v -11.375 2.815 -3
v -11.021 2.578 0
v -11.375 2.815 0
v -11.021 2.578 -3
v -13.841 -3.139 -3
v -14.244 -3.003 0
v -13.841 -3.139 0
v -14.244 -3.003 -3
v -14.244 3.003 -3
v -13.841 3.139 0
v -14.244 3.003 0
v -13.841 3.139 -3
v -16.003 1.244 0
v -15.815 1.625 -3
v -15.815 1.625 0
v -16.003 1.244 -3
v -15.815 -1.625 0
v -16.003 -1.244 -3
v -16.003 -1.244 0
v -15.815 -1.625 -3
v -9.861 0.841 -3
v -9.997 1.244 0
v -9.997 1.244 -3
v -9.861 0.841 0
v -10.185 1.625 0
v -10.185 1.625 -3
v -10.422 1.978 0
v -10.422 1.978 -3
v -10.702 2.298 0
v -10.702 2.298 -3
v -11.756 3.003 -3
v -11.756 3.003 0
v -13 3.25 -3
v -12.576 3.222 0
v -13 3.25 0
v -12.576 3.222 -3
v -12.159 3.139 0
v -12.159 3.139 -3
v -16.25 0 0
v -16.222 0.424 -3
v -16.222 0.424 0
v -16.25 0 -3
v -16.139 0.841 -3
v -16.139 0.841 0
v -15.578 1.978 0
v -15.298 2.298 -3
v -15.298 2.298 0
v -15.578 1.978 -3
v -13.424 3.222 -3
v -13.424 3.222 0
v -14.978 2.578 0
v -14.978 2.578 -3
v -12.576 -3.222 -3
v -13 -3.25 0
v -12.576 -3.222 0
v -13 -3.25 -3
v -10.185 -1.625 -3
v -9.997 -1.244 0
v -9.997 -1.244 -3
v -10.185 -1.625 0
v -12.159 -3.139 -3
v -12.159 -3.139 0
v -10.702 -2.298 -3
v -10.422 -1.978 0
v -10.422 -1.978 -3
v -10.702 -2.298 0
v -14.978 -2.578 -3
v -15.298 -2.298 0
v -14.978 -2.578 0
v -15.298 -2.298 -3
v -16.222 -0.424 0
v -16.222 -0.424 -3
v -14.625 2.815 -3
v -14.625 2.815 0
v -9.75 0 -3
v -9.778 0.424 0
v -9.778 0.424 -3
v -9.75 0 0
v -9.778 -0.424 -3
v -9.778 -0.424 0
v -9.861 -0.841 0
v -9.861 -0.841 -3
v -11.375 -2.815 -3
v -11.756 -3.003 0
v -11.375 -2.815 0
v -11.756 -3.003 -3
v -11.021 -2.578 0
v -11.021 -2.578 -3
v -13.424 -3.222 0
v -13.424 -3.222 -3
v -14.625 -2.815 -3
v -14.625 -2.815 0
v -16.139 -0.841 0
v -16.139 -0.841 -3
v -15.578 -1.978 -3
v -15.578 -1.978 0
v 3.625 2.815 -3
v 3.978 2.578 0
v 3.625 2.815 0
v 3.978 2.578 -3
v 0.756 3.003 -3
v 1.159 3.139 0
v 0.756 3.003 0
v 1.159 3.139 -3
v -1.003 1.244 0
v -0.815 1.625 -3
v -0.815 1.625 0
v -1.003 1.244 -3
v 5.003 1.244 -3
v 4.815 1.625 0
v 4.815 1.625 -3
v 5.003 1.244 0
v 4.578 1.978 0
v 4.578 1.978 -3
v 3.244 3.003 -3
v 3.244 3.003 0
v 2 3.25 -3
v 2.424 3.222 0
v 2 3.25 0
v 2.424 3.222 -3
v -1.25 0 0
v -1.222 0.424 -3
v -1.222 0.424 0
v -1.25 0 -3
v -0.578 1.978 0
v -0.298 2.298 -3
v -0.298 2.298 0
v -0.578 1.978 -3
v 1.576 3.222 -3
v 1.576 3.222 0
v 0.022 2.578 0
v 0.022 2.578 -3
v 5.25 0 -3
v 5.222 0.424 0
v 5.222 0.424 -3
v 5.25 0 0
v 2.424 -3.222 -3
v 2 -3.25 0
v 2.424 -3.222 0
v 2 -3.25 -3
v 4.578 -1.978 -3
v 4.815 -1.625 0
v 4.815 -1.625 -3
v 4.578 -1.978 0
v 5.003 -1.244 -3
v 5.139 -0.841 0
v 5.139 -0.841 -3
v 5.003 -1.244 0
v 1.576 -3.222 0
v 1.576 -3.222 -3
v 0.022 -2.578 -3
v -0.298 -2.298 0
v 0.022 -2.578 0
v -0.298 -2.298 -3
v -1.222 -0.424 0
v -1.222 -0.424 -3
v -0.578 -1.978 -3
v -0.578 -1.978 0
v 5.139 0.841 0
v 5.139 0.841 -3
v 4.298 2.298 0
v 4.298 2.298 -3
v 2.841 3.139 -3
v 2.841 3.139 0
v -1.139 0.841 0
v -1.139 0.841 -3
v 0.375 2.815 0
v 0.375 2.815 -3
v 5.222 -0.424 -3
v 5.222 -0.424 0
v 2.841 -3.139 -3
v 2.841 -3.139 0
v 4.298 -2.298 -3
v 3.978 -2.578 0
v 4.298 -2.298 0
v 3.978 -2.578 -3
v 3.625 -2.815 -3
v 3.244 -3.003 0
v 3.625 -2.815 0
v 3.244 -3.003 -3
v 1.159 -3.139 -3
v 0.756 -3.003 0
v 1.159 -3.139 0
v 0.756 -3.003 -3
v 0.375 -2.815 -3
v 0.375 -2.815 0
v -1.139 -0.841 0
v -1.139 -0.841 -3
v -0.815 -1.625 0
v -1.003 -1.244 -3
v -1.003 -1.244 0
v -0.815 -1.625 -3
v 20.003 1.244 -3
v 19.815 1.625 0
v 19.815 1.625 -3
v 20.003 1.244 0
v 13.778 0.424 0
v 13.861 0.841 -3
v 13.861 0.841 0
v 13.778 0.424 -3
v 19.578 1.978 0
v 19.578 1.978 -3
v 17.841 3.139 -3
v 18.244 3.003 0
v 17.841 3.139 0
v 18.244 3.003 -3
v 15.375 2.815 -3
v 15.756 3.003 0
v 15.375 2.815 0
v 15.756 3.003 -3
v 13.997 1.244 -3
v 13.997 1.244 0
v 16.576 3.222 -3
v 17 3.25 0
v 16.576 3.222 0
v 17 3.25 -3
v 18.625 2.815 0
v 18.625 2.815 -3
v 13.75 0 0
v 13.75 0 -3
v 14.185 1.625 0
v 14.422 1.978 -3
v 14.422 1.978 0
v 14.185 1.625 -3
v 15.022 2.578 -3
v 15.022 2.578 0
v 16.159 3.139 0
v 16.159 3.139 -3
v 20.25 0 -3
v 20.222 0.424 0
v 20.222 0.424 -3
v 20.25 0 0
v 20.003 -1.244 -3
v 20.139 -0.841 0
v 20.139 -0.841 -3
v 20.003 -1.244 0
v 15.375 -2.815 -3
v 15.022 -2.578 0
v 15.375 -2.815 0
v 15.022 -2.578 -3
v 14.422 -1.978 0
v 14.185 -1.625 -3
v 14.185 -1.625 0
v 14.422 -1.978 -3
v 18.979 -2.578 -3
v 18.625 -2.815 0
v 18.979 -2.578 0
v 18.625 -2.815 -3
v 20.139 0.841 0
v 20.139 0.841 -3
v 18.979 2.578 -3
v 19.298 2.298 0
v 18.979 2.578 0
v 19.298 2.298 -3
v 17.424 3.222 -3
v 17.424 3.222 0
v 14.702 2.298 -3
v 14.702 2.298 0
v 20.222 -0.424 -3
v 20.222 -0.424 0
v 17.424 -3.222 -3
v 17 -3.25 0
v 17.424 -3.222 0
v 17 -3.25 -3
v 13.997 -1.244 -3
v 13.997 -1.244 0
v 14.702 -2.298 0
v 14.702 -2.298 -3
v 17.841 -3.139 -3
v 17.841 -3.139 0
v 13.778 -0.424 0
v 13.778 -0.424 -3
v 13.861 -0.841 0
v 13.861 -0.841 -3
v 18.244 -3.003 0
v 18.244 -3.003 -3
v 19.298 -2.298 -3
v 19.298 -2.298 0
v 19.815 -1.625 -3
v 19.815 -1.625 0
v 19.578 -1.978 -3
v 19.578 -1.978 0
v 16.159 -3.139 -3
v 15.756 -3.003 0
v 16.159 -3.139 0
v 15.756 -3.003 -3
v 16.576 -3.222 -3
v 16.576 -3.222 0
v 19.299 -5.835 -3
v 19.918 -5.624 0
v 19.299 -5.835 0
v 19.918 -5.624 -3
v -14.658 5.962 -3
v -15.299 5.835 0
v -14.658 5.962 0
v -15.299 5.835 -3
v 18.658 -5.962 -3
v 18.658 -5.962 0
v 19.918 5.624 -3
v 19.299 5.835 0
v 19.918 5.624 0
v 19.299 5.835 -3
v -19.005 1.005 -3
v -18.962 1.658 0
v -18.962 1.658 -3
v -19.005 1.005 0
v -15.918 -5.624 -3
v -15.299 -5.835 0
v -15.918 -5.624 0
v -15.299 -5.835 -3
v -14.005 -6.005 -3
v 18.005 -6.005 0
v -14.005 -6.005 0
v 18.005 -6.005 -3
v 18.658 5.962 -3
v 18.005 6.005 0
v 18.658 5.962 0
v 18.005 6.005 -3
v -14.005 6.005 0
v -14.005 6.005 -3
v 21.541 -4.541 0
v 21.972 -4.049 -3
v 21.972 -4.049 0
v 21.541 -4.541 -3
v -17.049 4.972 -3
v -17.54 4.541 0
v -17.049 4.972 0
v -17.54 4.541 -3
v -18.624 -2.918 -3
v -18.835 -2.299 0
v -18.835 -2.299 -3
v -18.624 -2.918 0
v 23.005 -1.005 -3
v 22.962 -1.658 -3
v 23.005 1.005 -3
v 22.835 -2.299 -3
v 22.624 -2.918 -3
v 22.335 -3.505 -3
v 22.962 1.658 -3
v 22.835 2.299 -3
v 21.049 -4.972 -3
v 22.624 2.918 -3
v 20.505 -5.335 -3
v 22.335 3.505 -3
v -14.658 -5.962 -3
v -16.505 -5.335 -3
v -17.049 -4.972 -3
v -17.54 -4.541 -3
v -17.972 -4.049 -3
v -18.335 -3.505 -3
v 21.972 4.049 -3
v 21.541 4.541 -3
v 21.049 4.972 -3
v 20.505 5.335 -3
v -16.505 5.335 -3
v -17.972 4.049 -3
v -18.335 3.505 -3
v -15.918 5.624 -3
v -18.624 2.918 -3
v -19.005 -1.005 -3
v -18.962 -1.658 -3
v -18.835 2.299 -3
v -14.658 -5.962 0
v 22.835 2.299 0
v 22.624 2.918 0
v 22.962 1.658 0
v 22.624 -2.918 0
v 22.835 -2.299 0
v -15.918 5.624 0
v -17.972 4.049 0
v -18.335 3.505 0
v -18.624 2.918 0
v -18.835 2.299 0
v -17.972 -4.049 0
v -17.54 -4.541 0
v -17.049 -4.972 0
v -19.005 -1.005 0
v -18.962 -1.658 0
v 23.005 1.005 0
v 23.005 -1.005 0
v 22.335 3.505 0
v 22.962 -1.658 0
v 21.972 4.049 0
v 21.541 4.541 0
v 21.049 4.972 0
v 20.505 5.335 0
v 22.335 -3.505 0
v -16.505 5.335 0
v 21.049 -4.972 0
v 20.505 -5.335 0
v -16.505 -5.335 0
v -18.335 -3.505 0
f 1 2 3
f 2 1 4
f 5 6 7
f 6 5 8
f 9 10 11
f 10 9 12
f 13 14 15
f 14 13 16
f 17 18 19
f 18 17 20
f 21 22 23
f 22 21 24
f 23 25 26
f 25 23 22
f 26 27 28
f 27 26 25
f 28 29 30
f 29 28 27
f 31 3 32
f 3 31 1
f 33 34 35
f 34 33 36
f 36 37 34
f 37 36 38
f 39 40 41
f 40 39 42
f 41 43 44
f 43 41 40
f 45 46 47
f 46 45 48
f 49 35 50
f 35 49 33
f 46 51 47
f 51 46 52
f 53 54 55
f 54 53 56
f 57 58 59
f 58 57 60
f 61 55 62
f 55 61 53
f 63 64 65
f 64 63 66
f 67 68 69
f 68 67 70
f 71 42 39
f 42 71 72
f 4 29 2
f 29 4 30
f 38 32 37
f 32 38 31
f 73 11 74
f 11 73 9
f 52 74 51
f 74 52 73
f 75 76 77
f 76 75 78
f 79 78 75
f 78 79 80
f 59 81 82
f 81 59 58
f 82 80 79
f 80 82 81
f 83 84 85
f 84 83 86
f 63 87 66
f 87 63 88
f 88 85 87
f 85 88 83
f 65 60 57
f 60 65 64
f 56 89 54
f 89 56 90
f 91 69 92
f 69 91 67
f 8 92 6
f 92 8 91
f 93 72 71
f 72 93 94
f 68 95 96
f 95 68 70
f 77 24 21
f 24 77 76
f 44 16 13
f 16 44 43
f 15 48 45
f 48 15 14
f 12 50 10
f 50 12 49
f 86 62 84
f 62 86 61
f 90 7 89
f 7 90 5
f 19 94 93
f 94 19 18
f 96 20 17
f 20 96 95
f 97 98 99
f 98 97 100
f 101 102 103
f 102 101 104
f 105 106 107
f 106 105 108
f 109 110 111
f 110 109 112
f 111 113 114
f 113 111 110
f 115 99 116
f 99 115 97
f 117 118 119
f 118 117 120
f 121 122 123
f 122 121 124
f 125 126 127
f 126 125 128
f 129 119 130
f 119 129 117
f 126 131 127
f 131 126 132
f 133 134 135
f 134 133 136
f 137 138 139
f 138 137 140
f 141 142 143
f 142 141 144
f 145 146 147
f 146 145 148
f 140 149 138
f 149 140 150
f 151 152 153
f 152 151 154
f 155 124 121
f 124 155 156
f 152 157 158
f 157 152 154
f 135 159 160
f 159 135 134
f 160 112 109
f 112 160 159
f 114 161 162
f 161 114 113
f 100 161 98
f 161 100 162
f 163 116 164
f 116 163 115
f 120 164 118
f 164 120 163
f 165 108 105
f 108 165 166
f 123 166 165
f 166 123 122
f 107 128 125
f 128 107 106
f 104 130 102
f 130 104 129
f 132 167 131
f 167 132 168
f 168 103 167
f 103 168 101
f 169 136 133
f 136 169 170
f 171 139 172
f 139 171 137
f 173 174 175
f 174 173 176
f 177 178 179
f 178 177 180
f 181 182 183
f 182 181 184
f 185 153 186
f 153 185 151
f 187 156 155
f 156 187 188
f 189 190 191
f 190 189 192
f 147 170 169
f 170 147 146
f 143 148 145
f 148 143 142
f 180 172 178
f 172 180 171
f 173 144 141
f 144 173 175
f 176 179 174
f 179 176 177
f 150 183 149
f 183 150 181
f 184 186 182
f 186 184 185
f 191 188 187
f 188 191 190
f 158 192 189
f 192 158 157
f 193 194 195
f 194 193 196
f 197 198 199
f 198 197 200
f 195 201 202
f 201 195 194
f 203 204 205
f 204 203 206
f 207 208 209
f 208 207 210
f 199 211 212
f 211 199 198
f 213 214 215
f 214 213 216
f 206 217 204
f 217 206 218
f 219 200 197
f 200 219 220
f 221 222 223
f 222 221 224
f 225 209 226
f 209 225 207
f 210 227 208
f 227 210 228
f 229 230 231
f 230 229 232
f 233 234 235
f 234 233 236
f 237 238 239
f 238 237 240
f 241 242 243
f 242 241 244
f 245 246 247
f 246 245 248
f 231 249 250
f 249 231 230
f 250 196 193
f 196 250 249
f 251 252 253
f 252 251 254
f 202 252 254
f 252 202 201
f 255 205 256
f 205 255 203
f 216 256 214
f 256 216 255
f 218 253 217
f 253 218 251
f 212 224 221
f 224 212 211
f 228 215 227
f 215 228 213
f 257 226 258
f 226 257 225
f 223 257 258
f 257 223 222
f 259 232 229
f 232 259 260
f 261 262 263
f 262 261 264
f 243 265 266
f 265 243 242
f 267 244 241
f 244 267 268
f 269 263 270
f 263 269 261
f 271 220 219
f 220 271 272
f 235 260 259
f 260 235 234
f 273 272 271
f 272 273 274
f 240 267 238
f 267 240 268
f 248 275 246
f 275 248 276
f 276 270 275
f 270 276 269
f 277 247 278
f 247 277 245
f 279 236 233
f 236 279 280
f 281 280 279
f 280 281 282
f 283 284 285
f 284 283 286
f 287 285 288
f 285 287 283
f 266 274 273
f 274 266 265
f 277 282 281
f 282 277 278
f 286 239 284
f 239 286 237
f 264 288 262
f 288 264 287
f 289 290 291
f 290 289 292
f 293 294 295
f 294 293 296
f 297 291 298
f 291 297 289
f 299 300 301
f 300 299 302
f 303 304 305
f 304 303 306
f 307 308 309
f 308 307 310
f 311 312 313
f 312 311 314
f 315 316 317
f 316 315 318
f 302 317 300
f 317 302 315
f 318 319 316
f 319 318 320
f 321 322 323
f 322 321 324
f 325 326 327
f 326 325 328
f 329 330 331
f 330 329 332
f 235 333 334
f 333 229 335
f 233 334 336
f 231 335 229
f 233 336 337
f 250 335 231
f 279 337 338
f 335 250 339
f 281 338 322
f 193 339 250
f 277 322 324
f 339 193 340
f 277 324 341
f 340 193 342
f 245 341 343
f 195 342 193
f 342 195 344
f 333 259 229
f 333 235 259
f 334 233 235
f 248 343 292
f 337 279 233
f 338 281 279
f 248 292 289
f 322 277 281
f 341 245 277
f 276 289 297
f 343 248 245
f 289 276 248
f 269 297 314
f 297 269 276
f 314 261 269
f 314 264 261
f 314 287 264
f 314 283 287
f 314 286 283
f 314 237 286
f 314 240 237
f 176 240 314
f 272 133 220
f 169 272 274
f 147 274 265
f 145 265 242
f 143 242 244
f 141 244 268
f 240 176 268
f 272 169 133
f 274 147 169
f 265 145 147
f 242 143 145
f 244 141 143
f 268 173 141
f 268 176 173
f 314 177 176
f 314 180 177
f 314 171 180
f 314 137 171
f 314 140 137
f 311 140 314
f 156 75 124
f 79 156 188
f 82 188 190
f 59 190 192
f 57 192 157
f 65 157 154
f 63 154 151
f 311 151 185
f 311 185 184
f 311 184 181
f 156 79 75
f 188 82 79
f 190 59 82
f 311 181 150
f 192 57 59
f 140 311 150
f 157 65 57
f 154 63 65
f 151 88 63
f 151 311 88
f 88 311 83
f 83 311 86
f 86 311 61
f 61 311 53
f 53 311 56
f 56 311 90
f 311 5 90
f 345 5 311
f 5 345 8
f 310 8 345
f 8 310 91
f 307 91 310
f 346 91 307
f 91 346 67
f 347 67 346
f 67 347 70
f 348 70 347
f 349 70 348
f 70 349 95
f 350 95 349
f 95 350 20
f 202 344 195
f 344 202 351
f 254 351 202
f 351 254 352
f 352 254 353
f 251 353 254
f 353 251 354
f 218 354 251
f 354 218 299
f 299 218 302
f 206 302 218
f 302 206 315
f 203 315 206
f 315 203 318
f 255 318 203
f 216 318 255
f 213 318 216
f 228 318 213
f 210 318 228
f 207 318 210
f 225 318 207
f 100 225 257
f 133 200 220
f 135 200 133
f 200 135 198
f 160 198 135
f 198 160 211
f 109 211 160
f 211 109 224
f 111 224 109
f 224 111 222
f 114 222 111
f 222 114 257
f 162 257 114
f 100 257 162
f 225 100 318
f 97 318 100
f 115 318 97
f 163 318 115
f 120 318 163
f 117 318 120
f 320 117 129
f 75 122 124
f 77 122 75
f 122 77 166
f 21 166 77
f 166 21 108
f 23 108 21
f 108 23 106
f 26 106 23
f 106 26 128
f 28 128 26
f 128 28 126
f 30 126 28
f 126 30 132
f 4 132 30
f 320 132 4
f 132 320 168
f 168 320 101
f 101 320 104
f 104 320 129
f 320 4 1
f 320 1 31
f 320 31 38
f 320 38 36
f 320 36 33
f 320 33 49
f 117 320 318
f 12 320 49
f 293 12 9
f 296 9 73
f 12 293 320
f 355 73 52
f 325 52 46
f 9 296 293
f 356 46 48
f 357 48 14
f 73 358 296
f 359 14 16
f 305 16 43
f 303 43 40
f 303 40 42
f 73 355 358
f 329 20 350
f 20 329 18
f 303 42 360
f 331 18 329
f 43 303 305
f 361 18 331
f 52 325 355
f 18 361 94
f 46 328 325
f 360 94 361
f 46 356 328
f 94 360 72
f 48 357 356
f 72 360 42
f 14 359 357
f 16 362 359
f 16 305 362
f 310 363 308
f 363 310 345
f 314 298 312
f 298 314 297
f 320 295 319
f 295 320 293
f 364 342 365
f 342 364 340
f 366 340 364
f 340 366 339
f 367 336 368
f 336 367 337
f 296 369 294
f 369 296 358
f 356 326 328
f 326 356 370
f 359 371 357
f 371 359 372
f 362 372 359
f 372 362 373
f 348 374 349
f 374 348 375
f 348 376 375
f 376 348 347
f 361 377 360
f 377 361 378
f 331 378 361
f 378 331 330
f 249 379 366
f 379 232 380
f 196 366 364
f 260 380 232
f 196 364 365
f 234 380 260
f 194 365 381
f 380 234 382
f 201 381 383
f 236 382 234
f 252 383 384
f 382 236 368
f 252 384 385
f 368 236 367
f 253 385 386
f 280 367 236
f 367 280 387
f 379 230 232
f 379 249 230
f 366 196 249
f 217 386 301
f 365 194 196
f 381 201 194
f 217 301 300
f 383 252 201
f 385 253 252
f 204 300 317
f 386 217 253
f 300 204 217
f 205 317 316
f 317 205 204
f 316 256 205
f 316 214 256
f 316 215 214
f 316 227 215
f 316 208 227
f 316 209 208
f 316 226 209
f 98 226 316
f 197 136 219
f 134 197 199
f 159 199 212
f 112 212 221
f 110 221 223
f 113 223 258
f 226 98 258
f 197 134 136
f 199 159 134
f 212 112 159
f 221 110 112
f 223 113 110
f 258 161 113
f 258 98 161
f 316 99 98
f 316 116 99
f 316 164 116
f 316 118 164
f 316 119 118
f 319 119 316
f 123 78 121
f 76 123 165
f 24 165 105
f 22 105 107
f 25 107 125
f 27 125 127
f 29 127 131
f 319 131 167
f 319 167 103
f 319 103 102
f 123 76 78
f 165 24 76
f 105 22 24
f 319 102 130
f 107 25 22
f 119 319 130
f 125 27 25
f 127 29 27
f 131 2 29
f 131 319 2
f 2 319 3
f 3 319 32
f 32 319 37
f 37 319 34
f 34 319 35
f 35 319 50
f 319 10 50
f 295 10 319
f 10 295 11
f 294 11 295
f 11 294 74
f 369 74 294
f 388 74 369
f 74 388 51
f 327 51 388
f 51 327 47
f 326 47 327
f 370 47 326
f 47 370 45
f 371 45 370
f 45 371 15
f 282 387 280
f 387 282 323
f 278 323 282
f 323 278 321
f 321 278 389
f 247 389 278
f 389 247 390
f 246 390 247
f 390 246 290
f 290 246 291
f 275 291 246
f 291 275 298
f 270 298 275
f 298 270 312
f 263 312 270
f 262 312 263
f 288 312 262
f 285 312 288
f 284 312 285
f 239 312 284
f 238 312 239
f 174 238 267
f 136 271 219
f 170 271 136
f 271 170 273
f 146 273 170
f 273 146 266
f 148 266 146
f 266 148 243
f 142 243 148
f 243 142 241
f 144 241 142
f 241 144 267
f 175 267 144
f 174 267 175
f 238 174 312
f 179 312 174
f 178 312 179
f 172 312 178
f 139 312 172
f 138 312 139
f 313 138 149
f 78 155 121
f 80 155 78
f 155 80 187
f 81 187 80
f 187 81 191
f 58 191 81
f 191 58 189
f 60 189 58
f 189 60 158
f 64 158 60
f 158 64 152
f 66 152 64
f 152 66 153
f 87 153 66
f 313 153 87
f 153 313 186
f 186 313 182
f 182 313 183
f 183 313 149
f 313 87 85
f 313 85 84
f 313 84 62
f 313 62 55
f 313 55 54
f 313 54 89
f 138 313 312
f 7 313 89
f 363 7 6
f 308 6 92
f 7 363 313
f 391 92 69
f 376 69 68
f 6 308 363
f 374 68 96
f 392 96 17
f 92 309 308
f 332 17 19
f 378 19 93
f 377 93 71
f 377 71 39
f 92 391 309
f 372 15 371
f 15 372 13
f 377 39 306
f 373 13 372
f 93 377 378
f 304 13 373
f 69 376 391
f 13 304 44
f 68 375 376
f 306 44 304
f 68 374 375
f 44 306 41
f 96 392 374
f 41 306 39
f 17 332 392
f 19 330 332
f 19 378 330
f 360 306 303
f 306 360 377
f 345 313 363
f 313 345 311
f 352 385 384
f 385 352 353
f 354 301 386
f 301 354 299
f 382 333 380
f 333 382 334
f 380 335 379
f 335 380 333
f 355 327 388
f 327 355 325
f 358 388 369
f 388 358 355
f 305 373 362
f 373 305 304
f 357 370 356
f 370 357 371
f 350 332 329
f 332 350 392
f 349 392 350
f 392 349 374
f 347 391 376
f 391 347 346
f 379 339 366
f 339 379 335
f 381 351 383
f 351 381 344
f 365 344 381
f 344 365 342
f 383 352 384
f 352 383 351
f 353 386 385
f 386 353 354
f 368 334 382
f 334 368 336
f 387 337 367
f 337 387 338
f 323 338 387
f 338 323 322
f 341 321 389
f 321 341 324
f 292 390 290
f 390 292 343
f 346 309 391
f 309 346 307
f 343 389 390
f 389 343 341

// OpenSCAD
// Generated by SolidPython 1.1.3 on 2022-09-15 16:37:09
$fn = 48;


difference() {
	union() {
		translate(v = [2, 0, 0]) {
			difference() {
				union() {
					color(alpha = 1.0000000000, c = "Gold") {
						translate(v = [0, 0, 0]) {
							rotate(a = [0, 0, 0]) {
								translate(v = [0, 0, -3]) {
									linear_extrude(height = 3) {
										offset(r = 5) {
											square(center = true, size = [32.0100000000, 2.0100000000]);
										}
									}
								}
							}
						}
					}
				}
				union() {
					color(alpha = 1.0000000000, c = "Gold") {
						translate(v = [-15.0000000000, 0.0000000000, 0]) {
							rotate(a = [0, 0, 0]) {
								translate(v = [0, 0, -250]) {
									cylinder(h = 500, r = 3.2500000000);
								}
							}
						}
					}
					color(alpha = 1.0000000000, c = "Gold") {
						translate(v = [0.0000000000, 0.0000000000, 0]) {
							rotate(a = [0, 0, 0]) {
								translate(v = [0, 0, -250]) {
									cylinder(h = 500, r = 3.2500000000);
								}
							}
						}
					}
					color(alpha = 1.0000000000, c = "Gold") {
						translate(v = [15.0000000000, 0.0000000000, 0]) {
							rotate(a = [0, 0, 0]) {
								translate(v = [0, 0, -250]) {
									cylinder(h = 500, r = 3.2500000000);
								}
							}
						}
					}
				}
			}
		}
	}
	union();
}
/***********************************************
*********      SolidPython code:      **********
************************************************
 
import subprocess

from solid.objects import *
from solid import scad_render_to_file, scad_render

import math

import os

##################################################################################################################################################
##################################################################################################################################################
##################################################################################################################################################
##################################################################################################################################################
######  DIMENSION STUFF
##################################################################################################################################################
##################################################################################################################################################
##################################################################################################################################################
##################################################################################################################################################


mode = "3DPR"
#mode = "LAZE"
#mode = "TURE"
#mode = ""


######  Countersunk
countersunkM = []
WIDTH = 0
DEPTH = 1
countersunkM1width = 0; countersunkM1depth = 0; countersunkM2width = 0; countersunkM2depth = 0
countersunkM3width = 0
countersunkM3depth = 0
countersunkM4width = 0
countersunkM4depth = 0
countersunkM5width = 0
countersunkM5depth = 0
countersunkM6width = 0
countersunkM6depth = 0

######  Holes
holeM = []
holeM1 = 0
holeM2 = 0
holeM3 = 0
holeM4 = 0
holeM5 = 0
holeM6 = 0

######  Nuts
nutM = []
NUTWIDTH = 0
NUTDEPTH = 1
nutM1width = 0
nutM1depth = 0
nutM2width = 0
nutM2depth = 0
nutM3width = 0
nutM3depth = 0
nutM4width = 0
nutM4depth = 0
nutM5width = 0
nutM5depth = 0
nutM6width = 0
nutM6depth = 0

######  OOEB
ooebPinWidth = 0
ooebPinWidthWide = 0


######  Colors
colDefault = "Gold"

colOOEBbase = colDefault

colLEDRed = "red"
colWire = "gray"
    ######  Resistor
colRes = list()
colResistor = "beige"

colResBlack = "black"
colRes.append(colResBlack)
colResBrown = "brown"
colRes.append(colResBrown)
colResRed = "red"
colRes.append(colResRed)
colResOrange = "orange"
colRes.append(colResOrange)
colResYellow = "yellow"
colRes.append(colResYellow)
colResGreen = "green"
colRes.append(colResGreen)
colResBlue = "blue"
colRes.append(colResBlue)
colResPurple = "purple"
colRes.append(colResPurple)
colResGray = "gray"
colRes.append(colResGray)
colResWhite = "white"
colRes.append(colResWhite)





def changeMode(m="3DPR"):
    #print("####################################################      CHANGING MODES TO: " + m)
    global mode
    mode = m
    ######  Countersunk
    global countersunkM, countersunkM1width, countersunkM1depth, countersunkM2width, countersunkM2depth, countersunkM3width, countersunkM3depth, countersunkM4width, countersunkM4depth, countersunkM5width, countersunkM5depth, countersunkM6width, countersunkM6depth
    countersunkM = []
    countersunkM.append([0,0])
    countersunkM1width = 0 if mode== "3DPR" else 0
    countersunkM1depth = 0 if mode== "3DPR" else 0
    countersunkM.append([countersunkM1width,countersunkM1depth])
    countersunkM2width = 0 if mode== "3DPR" else 0
    countersunkM2depth = 0 if mode== "3DPR" else 0
    countersunkM.append([countersunkM2width,countersunkM2depth])
    countersunkM3width = 5.5/2+0.6 if mode== "3DPR" else 5.5/2
    countersunkM3depth = 1.7 if mode== "3DPR" else 1.7
    countersunkM.append([countersunkM3width,countersunkM3depth])
    countersunkM4width = 0 if mode== "3DPR" else 0
    countersunkM4depth = 0 if mode== "3DPR" else 0
    countersunkM.append([countersunkM4width,countersunkM4depth])
    countersunkM5width = 0 if mode== "3DPR" else 0
    countersunkM5depth = 0 if mode== "3DPR" else 0
    countersunkM.append([countersunkM5width,countersunkM5depth])
    countersunkM6width = 0 if mode== "3DPR" else 0
    countersunkM6depth = 0 if mode== "3DPR" else 0
    countersunkM.append([countersunkM6width,countersunkM6depth])
    ######  Holes
    global holeM, holeM1, holeM2, holeM3, holeM4, holeM5, holeM6, holeM7, holeM8
    holeM = []
    holeM1 = 1.2/2 if mode== "3DPR" else 1/2
    holeM2 = 2.3/2 if mode== "3DPR" else 2/2
    holeM3 = 3.4/2 if mode== "3DPR" else 3/2
    holeM4 = 4.4/2 if mode== "3DPR" else 4/2
    holeM5 = 5.4/2 if mode== "3DPR" else 5/2
    holeM6 = 6.5/2 if mode== "3DPR" else 6/2
    holeM7 = 7.5/2 if mode== "3DPR" else 7/2
    holeM8 = 8.6/2 if mode== "3DPR" else 8/2
    holeM.append(0)
    holeM.append(holeM1)
    holeM.append(holeM2)
    holeM.append(holeM3)
    holeM.append(holeM4)
    holeM.append(holeM5)
    holeM.append(holeM6)
    holeM.append(holeM7)
    holeM.append(holeM8)
    #####  Nuts
    global nutM, nutM1width, nutM1depth, nutM2width, nutM2depth, nutM3width, nutM3depth, nutM4width, nutM4depth, nutM5width, nutM5depth, nutM6width, nutM6depth
    nutM = []
    nutM.append([0,0]) 
    #M1 Nut
    nutM1width = 0
    nutM1depth = 0
    nutM.append([nutM1width,nutM1depth])    
    #M2 Nut
    nutM2width = 0
    nutM2depth = 0
    nutM.append([nutM2width,nutM2depth])    
    #M3 Nut
    #nutM3width = 6.05 if mode== "3DPR" else 5.5
    nutM3width = 6.05 * 1.154 if mode== "3DPR" else 5.5 * 1.154
    nutM3depth = 2.5 if mode== "3DPR" else 2.5
    nutM.append([nutM3width,nutM3depth])    
    #M4 Nut
    nutM4width = 0
    nutM4depth = 0
    nutM.append([nutM4width,nutM4depth])    
    #M5 Nut
    nutM5width = 0
    nutM5depth = 0
    nutM.append([nutM5width,nutM5depth])    
    #M6 Nut
    nutM6width = 11 if mode== "3DPR" else 10
    nutM6depth = 5 if mode== "3DPR" else 5
    nutM.append([nutM6width,nutM6depth])    

    ######  OOEB
    global ooebPinWidth,  ooebPinWidthWide

    ooebPinWidth = 0.6
    if(mode=="3DPR" or mode=="LAZE"):
        ooebPinWidth = 0.6 + 0.6
    ooebPinWidthWide = 1.2
    if(mode=="3DPR" or mode=="LAZE"):
        ooebPinWidthWide = 1.2 + 0.6


changeMode()


""""    
holeM12D = s=="3DPR" ? 1.4/2 : 1.2/2;
holeM16D = s=="3DPR" ? 1.8/2 : 1.6/2;
holeM2 = s=="3DPR" ? 2.3/2 : 2/2;
holeM25D = s=="3DPR" ? 2.8/2 : 2.5/2;
holeM27D = s=="3DPR" ? 3.1/2 : 2.7/2;    
holeM3 = s=="3DPR" ? 3.4/2 : 3/2;
holeM35D = s=="3DPR" ? 3.9/2 : 35/2;
holeM4 = s=="3DPR" ? 4.4/2 : 4/2;
holeM5 = s=="3DPR" ? 5.4/2 : 5/2;
holeM6 = s=="3DPR" ? 6.5/2 : 6/2;
holeM6Minus = s=="3DPR" ? 5.8/2 : 5.9/2;
holeM7 = s=="3DPR" ? 7.5/2 : 7/2;
holeM8 = s=="3DPR" ? 8.6/2 : 8/2;
holeM9 = s=="3DPR" ? 9.6/2 : 9/2;
holeM10 = s=="3DPR" ? 10.6/2 : 10/2;
holeM11 = s=="3DPR" ? 11.6/2 : 11/2;
holeM12 = s=="3DPR" ? 12.6/2 : 12/2;
holeM13 = s=="3DPR" ? 13.6/2 : 13/2;
holeM14 = s=="3DPR" ? 14.6/2 : 14/2;
holeM15 = s=="3DPR" ? 15.6/2 : 15/2;
holeM16 = s=="3DPR" ? 16.6/2 : 16/2;
holeM17 = s=="3DPR" ? 17.6/2 : 17/2;
holeM18 = s=="3DPR" ? 18.6/2 : 18/2;
holeM19 = s=="3DPR" ? 19.6/2 : 19/2;
holeM20 = s=="3DPR" ? 20.6/2 : 20/2;
"""

##################################################################################################################################################
##################################################################################################################################################
##################################################################################################################################################
##################################################################################################################################################
######  REGULAR STUFF
##################################################################################################################################################
##################################################################################################################################################
##################################################################################################################################################
##################################################################################################################################################


def setMode(mode="3DPR"):
    changeMode(mode)

def getMode():
    return mode



def saveToScad(fileName, parts):
    dir =  os.path.dirname(os.path.abspath(fileName))
    Path(dir).mkdir(parents=True, exist_ok=True)
    file_out = scad_render_to_file(parts, fileName, file_header=f'$fn = 48;')


def saveToDxf(fileIn, fileOut=""):
    if fileOut == "":
        fileOut = fileIn.replace(".scad",".dxf")
    saveToFile(fileIn, fileOut)
    
def saveToPng(fileIn, fileOut="",extra="--render"):
    if fileOut == "":
        fileOut = fileIn.replace(".scad",".png")
    saveToFile(fileIn, fileOut)

def saveToStl(fileIn, fileOut=""):
    if fileOut == "":
        fileOut = fileIn.replace(".scad",".stl")
    saveToFile(fileIn, fileOut)
    
def saveToSvg(fileIn, fileOut=""):
    if fileOut == "":
        fileOut = fileIn.replace(".scad",".svg")
    saveToFile(fileIn, fileOut)

def saveToFile(fileIn, fileOut,extra=""):
    extra = extra + " --colorscheme Tomorrow"

    launchStr = 'openscad -o "' + fileOut + '"' + extra + ' "' + fileIn + '"'
    if ".png" in fileOut:
        launchStr = launchStr + " --render"
    print("            saveToFile launch string: " + launchStr)
    subprocess.run(launchStr)
    x=0



def insert(item,pos=[None,None,None],x=0,y=0,z=0,ex=0,size=[None,None,None],length=0,rot=[None,None,None],rotX=0,rotY=0,rotZ=0,width=0,height=0,depth=100,rad=0,rad2=0,color=colDefault,alpha=1,OOwidth=0,OOheight=0,holes=True,negative=True, name="",m=""):
    return OPSCInsert(item,pos,x,y,z,ex,size,length,rot,rotX,rotY,rotZ,width,height,depth,rad,rad2,color,alpha,OOwidth,OOheight,holes,negative,name,m=m)


def OPSCInsert(item,pos=[None,None,None],x=0,y=0,z=0,ex=0,size=[None,None,None],length=0,rot=[None,None,None],rotX=0,rotY=0,rotZ=0,width=0,height=0,depth=100,rad=0,rad2=0,col=colDefault,alpha=1,OOwidth=0,OOheight=0,holes=True,negative=True, name="",m=""):
    
    """
        color(color,alpha){
            translate([x,y,z]){
                    rotate([rotX,rotY,rotZ]){
    """
    returnValue = ""

    #print(pos)

    if pos[0] != None:
        x=pos[0]
        y=pos[1]
        z=pos[2]
    if rot[0] != None:
        rotX=rot[0]
        rotY=rot[1]
        rotZ=rot[2]
    
    returnValue = color(col)(translate((x,y,z))(
                            rotate((rotX,rotY,rotZ))(
                                OPSCInsertIf(item,pos,x,y,z,ex,size,length,rot,rotX,rotY,rotZ,width,height,depth,rad,rad2,col,alpha,OOwidth,OOheight,holes,negative,name,m=m)
                            )
                        ))
                
    

    return returnValue

def OPSCInsertIf(item,pos=[None,None,None],x=0,y=0,z=0,ex=0,size=[None,None,None],length=0,rot=[None,None,None],rotX=0,rotY=0,rotZ=0,width=0,height=0,depth=100,rad=0,rad2=0,color=colDefault,alpha=1,OOwidth=0,OOheight=0,holes=True,negative=True, name="",m=""):
    returnValue = cube([10,10,10])

    if size[0] != None:
        width=size[0]
        height=size[1]
        depth=size[2]

    #print("    OPSCInsert item:" + str(item) + " at:[" + str(x) + "," + str(y) + "," + str(z) + "] size: [" + str(width) + "," + str(height) + "," + str(depth) + "]")

    if(item=="cube"):
        returnValue =  translate([0,0,-depth/2])(cube([width,height,depth],center=True).set_modifier(m))
    elif(item=="cylinder"):        
        returnValue = translate([0,0,-depth/2])(cylinder(r=rad,h=depth,center=True).set_modifier(m))
    elif(item=="sphere"):        
        returnValue = translate([0,0,-rad])(sphere(r=rad).set_modifier(m))
    elif(item=="plane"):
        if depth == 100:
            returnValue = insert("cube",size=[1000,1000,0.1],color=color).set_modifier(m)            
        else:
            returnValue = insert("cube",size=[1000,1000,depth],color=color).set_modifier(m)                        
    elif(item=="cubeRounded"):
        if(rad == 0):
                            rad = 5
        returnValue =  translate([0,0,-depth])(
                        linear_extrude(height=depth)(                        
                            offset(r=rad)(
                                square((width-rad*2+.01,height-rad*2+.01),center=True).set_modifier(m)
                                )
                            )
        )
    ######  Countersunk
    elif(item == "countersunkM1" or item == "csM1" ):
        returnValue = OSPCgetCountersunk(rad=1,m=m)
    elif(item == "countersunkM2" or item == "csM2" ):
        returnValue = OSPCgetCountersunk(rad=2,m=m)
    elif(item == "countersunkM3" or item == "csM3" ):
        returnValue = OSPCgetCountersunk(rad=3,m=m)
    elif(item == "countersunkM4" or item == "csM4" ):
        returnValue = OSPCgetCountersunk(rad=4,m=m)
    elif(item == "countersunkM5" or item == "csM5" ):
        returnValue = OSPCgetCountersunk(rad=5,m=m)
    elif(item == "countersunkM6" or item == "csM6" ):
        returnValue = OSPCgetCountersunk(rad=6,m=m)
    elif(item == "countersunk" or item == "cs"):
        returnValue = OSPCgetCountersunk(rad=rad,m=m)


    ######  Holes    
    elif(item == "holeM1"):
        returnValue = OSPCgetHole(rad=1,m=m)
    elif(item == "holeM2"):
        returnValue = OSPCgetHole(rad=2,m=m)
    elif(item == "holeM3"):
        returnValue = OSPCgetHole(rad=3,m=m)
    elif(item == "holeM4"):
        returnValue = OSPCgetHole(rad=4,m=m)
    elif(item == "holeM5"):
        returnValue = OSPCgetHole(rad=5,m=m)
    elif(item == "holeM6"):
        returnValue = OSPCgetHole(rad=6,m=m)
    elif(item == "holeM7"):
        returnValue = OSPCgetHole(rad=7,m=m)
    elif(item == "holeM8"):
        returnValue = OSPCgetHole(rad=8,m=m)
    elif(item == "hole"):
        returnValue = OSPCgetHole(rad=rad,m=m)

    ######  Nuts
    elif(item == "nutM1"):
        returnValue = OSPCgetNut(rad=1,depth=depth,m=m)
    elif(item == "nutM2"):
        returnValue = OSPCgetNut(rad=2,depth=depth,m=m)
    elif(item == "nutM3"):
        returnValue = OSPCgetNut(rad=3,depth=depth,m=m)
    elif(item == "nutM4"):
        returnValue = OSPCgetNut(rad=4,depth=depth,m=m)
    elif(item == "nutM5"):
        returnValue = OSPCgetNut(rad=5,depth=depth,m=m)
    elif(item == "nutM6"):
        returnValue = OSPCgetNut(rad=6,depth=depth,m=m)
    elif(item == "nut"):
        returnValue = OSPCgetNut(rad=rad,depth=depth,m=m)
    return returnValue

                

def OSPCgetHole(rad,m=""):
    return translate([0,0,-250])(cylinder(r=holeM[rad],h=500).set_modifier(m))

def OSPCgetNut(rad,depth,m=""):
    depth = nutM[rad][NUTDEPTH] if depth==100 else depth
    returnValue = OPSChexagon(nutM[rad][NUTWIDTH],depth=depth,m=m)
    return returnValue

def OSPCgetCountersunk(rad,m=""):
    depth=countersunkM[rad][DEPTH]
    returnValue = translate([0,0,-depth])(cylinder(h=depth,r2=countersunkM[rad][WIDTH],r1=holeM[rad])).set_modifier(m)
    return returnValue

def OPSChexagon(width,depth,m=""):
    angles = []
    for a in range(0,6):
        angles.append((a*360/6)+30)
    points = []
    for angle in angles:
        x = math.cos((math.pi/180)*angle)*(width/2)
        y = math.sin((math.pi/180)*angle)*(width/2)
        points.append([x,y])

        rv = polygon(points)
        rv = linear_extrude(height=depth)(rv)
        rv = translate([0,0,-depth])(rv)
        rv = rv.set_modifier(m)

    return rv

def OPSChexagonOld(width,depth,m=""):
    cutter = item()
    wid=width*2
    cutter.addPos(insert("cube",pos=[wid/2+width/2,0,0],size=[wid,wid,depth]))
    cutter.addPos(insert("cube",pos=[-wid/2-width/2,0,0],size=[wid,wid,depth]))

    cut = cutter.getPart()
    #print(depth)
    returnValue = difference()(
        translate([0,0,-depth/2])(cube([wid,wid,depth],center=True)),
        cut,
        rotate([0,0,60])(cut),
        rotate([0,0,-60])(cut)
    ).set_modifier(m)

    return returnValue

class item:

    def __init__(self):
        self.posItems=list()
        self.negItems=list()

    def isEmpty(self):        
        testString = scad_render(self.getPart())
        #print("test String length: " + str(len(testString)))
        returnValue = False
        if len(testString) == 270:            
            returnValue = True
        return returnValue

    def addPos(self,part):
        self.posItems.append(part)
    def addNeg(self,part):
        self.negItems.append(part)

    def getPart(self):
        returnValue = difference()(
            union()(self.posItems),
            union()(self.negItems)
        )
        return returnValue

    def getLaser(self,start=0,layers=1,thickness=-3,tileDif=200):
        rv= []

        for x in range(layers):
            rv.append(translate([0,x*tileDif,0])(
                    projection()(
                        intersection()(
                            insert("plane",z=start+x*thickness),
                            self.getPart()
                        )
                    )
            )
            )
        return union()(rv)

    def getSplit(self,start=0,depth=6,tileDif=200):
        rv= []

        rv.append(translate([0,0,0])(
            intersection()(
                insert("cube",size=[100,100,depth],z=start),
                self.getPart()
            )
        )
        )

        rv.append(translate([0,0,depth])(rotate([180,0,0])(translate([0,tileDif,depth])(
            intersection()(
                insert("cube",size=[100,100,depth],z=start-depth),
                self.getPart()
            )
        )
        )
        )
        )        
        return union()(rv)


 
 
************************************************/
